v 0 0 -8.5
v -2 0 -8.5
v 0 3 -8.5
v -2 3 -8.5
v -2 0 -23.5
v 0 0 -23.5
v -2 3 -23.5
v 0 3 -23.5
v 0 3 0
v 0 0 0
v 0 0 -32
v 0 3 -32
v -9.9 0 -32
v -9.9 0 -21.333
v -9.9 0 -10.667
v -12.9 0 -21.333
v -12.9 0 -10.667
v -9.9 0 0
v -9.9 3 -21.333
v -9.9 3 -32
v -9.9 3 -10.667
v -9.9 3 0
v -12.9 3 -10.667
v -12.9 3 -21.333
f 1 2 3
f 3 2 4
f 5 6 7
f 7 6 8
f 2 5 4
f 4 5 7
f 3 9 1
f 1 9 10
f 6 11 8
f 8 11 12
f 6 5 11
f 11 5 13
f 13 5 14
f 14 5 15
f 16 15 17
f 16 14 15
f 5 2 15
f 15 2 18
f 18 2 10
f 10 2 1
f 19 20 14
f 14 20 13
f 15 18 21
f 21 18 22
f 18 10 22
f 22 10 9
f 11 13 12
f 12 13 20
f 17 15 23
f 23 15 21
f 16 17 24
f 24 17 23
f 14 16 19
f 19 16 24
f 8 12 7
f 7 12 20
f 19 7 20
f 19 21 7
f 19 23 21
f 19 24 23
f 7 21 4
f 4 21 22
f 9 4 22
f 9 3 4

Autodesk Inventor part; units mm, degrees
ref_plane "YZ Plane" through (0, 0, 0) normal (1, 0, 0) x (0, 1, 0)
ref_plane "XZ Plane" through (0, 0, 0) normal (0, 1, 0) x (-1, 0, 0)
ref_plane "XY Plane" through (0, 0, 0) normal (0, 0, 1) x (1, 0, 0)
sketch "Esquisse1" plane through (0, 0, 0) normal (0, 1, 0) x (-1, 0, 0)
  line L0 (0, 0) -> (9.9, 0)
  line L1 (9.9, 0) -> (9.9, -32)
  line L2 (9.9, -32) -> (0, -32)
  line L3 (0, -32) -> (0, 0)
  line L4 (12.9, -21.3333) -> (9.9, -21.3333)
  line L5 (9.9, -21.3333) -> (9.9, -10.6667)
  line L6 (9.9, -10.6667) -> (12.9, -10.6667)
  line L7 (12.9, -10.6667) -> (12.9, -21.3333)
  point P0 (9.9, -16)
  dimension "d0" = 32
  dimension "d1" = 9.9
  dimension "d2" = 10.6667
  dimension "d3" = 3
extrude "Extrusion1" add sketch "Esquisse1" along normal blind 3
sketch "Esquisse2" plane through (0, 3, 0) normal (0, 1, 0) x (1, 0, 0)
  line L0 (-2, 8.5) -> (0, 8.5)
  line L1 (0, 8.5) -> (0, 23.5)
  line L2 (0, 23.5) -> (-2, 23.5)
  line L3 (-2, 23.5) -> (-2, 8.5)
  line L4 (-9.9, 21.3333) -> (-12.9, 21.3333) projected
  line L5 (-12.9, 21.3333) -> (-12.9, 10.6667) projected
  line L6 (-12.9, 10.6667) -> (-9.9, 10.6667) projected
  line L7 (-9.9, 10.6667) -> (-9.9, 0) projected
  line L8 (-9.9, 0) -> (0, 0) projected
  line L9 (0, 0) -> (0, 32) projected
  line L10 (0, 32) -> (-9.9, 32) projected
  line L11 (-9.9, 32) -> (-9.9, 21.3333) projected
  point P0 (0, 16)
  dimension "d6" = 2
  dimension "d7" = 15
extrude "Extrusion2" cut sketch "Esquisse2" against normal through all contours L3 L2 L1 L0
equation "\"d2\" = 0.333333 * d0"
properties part number "bottom_renfort"
